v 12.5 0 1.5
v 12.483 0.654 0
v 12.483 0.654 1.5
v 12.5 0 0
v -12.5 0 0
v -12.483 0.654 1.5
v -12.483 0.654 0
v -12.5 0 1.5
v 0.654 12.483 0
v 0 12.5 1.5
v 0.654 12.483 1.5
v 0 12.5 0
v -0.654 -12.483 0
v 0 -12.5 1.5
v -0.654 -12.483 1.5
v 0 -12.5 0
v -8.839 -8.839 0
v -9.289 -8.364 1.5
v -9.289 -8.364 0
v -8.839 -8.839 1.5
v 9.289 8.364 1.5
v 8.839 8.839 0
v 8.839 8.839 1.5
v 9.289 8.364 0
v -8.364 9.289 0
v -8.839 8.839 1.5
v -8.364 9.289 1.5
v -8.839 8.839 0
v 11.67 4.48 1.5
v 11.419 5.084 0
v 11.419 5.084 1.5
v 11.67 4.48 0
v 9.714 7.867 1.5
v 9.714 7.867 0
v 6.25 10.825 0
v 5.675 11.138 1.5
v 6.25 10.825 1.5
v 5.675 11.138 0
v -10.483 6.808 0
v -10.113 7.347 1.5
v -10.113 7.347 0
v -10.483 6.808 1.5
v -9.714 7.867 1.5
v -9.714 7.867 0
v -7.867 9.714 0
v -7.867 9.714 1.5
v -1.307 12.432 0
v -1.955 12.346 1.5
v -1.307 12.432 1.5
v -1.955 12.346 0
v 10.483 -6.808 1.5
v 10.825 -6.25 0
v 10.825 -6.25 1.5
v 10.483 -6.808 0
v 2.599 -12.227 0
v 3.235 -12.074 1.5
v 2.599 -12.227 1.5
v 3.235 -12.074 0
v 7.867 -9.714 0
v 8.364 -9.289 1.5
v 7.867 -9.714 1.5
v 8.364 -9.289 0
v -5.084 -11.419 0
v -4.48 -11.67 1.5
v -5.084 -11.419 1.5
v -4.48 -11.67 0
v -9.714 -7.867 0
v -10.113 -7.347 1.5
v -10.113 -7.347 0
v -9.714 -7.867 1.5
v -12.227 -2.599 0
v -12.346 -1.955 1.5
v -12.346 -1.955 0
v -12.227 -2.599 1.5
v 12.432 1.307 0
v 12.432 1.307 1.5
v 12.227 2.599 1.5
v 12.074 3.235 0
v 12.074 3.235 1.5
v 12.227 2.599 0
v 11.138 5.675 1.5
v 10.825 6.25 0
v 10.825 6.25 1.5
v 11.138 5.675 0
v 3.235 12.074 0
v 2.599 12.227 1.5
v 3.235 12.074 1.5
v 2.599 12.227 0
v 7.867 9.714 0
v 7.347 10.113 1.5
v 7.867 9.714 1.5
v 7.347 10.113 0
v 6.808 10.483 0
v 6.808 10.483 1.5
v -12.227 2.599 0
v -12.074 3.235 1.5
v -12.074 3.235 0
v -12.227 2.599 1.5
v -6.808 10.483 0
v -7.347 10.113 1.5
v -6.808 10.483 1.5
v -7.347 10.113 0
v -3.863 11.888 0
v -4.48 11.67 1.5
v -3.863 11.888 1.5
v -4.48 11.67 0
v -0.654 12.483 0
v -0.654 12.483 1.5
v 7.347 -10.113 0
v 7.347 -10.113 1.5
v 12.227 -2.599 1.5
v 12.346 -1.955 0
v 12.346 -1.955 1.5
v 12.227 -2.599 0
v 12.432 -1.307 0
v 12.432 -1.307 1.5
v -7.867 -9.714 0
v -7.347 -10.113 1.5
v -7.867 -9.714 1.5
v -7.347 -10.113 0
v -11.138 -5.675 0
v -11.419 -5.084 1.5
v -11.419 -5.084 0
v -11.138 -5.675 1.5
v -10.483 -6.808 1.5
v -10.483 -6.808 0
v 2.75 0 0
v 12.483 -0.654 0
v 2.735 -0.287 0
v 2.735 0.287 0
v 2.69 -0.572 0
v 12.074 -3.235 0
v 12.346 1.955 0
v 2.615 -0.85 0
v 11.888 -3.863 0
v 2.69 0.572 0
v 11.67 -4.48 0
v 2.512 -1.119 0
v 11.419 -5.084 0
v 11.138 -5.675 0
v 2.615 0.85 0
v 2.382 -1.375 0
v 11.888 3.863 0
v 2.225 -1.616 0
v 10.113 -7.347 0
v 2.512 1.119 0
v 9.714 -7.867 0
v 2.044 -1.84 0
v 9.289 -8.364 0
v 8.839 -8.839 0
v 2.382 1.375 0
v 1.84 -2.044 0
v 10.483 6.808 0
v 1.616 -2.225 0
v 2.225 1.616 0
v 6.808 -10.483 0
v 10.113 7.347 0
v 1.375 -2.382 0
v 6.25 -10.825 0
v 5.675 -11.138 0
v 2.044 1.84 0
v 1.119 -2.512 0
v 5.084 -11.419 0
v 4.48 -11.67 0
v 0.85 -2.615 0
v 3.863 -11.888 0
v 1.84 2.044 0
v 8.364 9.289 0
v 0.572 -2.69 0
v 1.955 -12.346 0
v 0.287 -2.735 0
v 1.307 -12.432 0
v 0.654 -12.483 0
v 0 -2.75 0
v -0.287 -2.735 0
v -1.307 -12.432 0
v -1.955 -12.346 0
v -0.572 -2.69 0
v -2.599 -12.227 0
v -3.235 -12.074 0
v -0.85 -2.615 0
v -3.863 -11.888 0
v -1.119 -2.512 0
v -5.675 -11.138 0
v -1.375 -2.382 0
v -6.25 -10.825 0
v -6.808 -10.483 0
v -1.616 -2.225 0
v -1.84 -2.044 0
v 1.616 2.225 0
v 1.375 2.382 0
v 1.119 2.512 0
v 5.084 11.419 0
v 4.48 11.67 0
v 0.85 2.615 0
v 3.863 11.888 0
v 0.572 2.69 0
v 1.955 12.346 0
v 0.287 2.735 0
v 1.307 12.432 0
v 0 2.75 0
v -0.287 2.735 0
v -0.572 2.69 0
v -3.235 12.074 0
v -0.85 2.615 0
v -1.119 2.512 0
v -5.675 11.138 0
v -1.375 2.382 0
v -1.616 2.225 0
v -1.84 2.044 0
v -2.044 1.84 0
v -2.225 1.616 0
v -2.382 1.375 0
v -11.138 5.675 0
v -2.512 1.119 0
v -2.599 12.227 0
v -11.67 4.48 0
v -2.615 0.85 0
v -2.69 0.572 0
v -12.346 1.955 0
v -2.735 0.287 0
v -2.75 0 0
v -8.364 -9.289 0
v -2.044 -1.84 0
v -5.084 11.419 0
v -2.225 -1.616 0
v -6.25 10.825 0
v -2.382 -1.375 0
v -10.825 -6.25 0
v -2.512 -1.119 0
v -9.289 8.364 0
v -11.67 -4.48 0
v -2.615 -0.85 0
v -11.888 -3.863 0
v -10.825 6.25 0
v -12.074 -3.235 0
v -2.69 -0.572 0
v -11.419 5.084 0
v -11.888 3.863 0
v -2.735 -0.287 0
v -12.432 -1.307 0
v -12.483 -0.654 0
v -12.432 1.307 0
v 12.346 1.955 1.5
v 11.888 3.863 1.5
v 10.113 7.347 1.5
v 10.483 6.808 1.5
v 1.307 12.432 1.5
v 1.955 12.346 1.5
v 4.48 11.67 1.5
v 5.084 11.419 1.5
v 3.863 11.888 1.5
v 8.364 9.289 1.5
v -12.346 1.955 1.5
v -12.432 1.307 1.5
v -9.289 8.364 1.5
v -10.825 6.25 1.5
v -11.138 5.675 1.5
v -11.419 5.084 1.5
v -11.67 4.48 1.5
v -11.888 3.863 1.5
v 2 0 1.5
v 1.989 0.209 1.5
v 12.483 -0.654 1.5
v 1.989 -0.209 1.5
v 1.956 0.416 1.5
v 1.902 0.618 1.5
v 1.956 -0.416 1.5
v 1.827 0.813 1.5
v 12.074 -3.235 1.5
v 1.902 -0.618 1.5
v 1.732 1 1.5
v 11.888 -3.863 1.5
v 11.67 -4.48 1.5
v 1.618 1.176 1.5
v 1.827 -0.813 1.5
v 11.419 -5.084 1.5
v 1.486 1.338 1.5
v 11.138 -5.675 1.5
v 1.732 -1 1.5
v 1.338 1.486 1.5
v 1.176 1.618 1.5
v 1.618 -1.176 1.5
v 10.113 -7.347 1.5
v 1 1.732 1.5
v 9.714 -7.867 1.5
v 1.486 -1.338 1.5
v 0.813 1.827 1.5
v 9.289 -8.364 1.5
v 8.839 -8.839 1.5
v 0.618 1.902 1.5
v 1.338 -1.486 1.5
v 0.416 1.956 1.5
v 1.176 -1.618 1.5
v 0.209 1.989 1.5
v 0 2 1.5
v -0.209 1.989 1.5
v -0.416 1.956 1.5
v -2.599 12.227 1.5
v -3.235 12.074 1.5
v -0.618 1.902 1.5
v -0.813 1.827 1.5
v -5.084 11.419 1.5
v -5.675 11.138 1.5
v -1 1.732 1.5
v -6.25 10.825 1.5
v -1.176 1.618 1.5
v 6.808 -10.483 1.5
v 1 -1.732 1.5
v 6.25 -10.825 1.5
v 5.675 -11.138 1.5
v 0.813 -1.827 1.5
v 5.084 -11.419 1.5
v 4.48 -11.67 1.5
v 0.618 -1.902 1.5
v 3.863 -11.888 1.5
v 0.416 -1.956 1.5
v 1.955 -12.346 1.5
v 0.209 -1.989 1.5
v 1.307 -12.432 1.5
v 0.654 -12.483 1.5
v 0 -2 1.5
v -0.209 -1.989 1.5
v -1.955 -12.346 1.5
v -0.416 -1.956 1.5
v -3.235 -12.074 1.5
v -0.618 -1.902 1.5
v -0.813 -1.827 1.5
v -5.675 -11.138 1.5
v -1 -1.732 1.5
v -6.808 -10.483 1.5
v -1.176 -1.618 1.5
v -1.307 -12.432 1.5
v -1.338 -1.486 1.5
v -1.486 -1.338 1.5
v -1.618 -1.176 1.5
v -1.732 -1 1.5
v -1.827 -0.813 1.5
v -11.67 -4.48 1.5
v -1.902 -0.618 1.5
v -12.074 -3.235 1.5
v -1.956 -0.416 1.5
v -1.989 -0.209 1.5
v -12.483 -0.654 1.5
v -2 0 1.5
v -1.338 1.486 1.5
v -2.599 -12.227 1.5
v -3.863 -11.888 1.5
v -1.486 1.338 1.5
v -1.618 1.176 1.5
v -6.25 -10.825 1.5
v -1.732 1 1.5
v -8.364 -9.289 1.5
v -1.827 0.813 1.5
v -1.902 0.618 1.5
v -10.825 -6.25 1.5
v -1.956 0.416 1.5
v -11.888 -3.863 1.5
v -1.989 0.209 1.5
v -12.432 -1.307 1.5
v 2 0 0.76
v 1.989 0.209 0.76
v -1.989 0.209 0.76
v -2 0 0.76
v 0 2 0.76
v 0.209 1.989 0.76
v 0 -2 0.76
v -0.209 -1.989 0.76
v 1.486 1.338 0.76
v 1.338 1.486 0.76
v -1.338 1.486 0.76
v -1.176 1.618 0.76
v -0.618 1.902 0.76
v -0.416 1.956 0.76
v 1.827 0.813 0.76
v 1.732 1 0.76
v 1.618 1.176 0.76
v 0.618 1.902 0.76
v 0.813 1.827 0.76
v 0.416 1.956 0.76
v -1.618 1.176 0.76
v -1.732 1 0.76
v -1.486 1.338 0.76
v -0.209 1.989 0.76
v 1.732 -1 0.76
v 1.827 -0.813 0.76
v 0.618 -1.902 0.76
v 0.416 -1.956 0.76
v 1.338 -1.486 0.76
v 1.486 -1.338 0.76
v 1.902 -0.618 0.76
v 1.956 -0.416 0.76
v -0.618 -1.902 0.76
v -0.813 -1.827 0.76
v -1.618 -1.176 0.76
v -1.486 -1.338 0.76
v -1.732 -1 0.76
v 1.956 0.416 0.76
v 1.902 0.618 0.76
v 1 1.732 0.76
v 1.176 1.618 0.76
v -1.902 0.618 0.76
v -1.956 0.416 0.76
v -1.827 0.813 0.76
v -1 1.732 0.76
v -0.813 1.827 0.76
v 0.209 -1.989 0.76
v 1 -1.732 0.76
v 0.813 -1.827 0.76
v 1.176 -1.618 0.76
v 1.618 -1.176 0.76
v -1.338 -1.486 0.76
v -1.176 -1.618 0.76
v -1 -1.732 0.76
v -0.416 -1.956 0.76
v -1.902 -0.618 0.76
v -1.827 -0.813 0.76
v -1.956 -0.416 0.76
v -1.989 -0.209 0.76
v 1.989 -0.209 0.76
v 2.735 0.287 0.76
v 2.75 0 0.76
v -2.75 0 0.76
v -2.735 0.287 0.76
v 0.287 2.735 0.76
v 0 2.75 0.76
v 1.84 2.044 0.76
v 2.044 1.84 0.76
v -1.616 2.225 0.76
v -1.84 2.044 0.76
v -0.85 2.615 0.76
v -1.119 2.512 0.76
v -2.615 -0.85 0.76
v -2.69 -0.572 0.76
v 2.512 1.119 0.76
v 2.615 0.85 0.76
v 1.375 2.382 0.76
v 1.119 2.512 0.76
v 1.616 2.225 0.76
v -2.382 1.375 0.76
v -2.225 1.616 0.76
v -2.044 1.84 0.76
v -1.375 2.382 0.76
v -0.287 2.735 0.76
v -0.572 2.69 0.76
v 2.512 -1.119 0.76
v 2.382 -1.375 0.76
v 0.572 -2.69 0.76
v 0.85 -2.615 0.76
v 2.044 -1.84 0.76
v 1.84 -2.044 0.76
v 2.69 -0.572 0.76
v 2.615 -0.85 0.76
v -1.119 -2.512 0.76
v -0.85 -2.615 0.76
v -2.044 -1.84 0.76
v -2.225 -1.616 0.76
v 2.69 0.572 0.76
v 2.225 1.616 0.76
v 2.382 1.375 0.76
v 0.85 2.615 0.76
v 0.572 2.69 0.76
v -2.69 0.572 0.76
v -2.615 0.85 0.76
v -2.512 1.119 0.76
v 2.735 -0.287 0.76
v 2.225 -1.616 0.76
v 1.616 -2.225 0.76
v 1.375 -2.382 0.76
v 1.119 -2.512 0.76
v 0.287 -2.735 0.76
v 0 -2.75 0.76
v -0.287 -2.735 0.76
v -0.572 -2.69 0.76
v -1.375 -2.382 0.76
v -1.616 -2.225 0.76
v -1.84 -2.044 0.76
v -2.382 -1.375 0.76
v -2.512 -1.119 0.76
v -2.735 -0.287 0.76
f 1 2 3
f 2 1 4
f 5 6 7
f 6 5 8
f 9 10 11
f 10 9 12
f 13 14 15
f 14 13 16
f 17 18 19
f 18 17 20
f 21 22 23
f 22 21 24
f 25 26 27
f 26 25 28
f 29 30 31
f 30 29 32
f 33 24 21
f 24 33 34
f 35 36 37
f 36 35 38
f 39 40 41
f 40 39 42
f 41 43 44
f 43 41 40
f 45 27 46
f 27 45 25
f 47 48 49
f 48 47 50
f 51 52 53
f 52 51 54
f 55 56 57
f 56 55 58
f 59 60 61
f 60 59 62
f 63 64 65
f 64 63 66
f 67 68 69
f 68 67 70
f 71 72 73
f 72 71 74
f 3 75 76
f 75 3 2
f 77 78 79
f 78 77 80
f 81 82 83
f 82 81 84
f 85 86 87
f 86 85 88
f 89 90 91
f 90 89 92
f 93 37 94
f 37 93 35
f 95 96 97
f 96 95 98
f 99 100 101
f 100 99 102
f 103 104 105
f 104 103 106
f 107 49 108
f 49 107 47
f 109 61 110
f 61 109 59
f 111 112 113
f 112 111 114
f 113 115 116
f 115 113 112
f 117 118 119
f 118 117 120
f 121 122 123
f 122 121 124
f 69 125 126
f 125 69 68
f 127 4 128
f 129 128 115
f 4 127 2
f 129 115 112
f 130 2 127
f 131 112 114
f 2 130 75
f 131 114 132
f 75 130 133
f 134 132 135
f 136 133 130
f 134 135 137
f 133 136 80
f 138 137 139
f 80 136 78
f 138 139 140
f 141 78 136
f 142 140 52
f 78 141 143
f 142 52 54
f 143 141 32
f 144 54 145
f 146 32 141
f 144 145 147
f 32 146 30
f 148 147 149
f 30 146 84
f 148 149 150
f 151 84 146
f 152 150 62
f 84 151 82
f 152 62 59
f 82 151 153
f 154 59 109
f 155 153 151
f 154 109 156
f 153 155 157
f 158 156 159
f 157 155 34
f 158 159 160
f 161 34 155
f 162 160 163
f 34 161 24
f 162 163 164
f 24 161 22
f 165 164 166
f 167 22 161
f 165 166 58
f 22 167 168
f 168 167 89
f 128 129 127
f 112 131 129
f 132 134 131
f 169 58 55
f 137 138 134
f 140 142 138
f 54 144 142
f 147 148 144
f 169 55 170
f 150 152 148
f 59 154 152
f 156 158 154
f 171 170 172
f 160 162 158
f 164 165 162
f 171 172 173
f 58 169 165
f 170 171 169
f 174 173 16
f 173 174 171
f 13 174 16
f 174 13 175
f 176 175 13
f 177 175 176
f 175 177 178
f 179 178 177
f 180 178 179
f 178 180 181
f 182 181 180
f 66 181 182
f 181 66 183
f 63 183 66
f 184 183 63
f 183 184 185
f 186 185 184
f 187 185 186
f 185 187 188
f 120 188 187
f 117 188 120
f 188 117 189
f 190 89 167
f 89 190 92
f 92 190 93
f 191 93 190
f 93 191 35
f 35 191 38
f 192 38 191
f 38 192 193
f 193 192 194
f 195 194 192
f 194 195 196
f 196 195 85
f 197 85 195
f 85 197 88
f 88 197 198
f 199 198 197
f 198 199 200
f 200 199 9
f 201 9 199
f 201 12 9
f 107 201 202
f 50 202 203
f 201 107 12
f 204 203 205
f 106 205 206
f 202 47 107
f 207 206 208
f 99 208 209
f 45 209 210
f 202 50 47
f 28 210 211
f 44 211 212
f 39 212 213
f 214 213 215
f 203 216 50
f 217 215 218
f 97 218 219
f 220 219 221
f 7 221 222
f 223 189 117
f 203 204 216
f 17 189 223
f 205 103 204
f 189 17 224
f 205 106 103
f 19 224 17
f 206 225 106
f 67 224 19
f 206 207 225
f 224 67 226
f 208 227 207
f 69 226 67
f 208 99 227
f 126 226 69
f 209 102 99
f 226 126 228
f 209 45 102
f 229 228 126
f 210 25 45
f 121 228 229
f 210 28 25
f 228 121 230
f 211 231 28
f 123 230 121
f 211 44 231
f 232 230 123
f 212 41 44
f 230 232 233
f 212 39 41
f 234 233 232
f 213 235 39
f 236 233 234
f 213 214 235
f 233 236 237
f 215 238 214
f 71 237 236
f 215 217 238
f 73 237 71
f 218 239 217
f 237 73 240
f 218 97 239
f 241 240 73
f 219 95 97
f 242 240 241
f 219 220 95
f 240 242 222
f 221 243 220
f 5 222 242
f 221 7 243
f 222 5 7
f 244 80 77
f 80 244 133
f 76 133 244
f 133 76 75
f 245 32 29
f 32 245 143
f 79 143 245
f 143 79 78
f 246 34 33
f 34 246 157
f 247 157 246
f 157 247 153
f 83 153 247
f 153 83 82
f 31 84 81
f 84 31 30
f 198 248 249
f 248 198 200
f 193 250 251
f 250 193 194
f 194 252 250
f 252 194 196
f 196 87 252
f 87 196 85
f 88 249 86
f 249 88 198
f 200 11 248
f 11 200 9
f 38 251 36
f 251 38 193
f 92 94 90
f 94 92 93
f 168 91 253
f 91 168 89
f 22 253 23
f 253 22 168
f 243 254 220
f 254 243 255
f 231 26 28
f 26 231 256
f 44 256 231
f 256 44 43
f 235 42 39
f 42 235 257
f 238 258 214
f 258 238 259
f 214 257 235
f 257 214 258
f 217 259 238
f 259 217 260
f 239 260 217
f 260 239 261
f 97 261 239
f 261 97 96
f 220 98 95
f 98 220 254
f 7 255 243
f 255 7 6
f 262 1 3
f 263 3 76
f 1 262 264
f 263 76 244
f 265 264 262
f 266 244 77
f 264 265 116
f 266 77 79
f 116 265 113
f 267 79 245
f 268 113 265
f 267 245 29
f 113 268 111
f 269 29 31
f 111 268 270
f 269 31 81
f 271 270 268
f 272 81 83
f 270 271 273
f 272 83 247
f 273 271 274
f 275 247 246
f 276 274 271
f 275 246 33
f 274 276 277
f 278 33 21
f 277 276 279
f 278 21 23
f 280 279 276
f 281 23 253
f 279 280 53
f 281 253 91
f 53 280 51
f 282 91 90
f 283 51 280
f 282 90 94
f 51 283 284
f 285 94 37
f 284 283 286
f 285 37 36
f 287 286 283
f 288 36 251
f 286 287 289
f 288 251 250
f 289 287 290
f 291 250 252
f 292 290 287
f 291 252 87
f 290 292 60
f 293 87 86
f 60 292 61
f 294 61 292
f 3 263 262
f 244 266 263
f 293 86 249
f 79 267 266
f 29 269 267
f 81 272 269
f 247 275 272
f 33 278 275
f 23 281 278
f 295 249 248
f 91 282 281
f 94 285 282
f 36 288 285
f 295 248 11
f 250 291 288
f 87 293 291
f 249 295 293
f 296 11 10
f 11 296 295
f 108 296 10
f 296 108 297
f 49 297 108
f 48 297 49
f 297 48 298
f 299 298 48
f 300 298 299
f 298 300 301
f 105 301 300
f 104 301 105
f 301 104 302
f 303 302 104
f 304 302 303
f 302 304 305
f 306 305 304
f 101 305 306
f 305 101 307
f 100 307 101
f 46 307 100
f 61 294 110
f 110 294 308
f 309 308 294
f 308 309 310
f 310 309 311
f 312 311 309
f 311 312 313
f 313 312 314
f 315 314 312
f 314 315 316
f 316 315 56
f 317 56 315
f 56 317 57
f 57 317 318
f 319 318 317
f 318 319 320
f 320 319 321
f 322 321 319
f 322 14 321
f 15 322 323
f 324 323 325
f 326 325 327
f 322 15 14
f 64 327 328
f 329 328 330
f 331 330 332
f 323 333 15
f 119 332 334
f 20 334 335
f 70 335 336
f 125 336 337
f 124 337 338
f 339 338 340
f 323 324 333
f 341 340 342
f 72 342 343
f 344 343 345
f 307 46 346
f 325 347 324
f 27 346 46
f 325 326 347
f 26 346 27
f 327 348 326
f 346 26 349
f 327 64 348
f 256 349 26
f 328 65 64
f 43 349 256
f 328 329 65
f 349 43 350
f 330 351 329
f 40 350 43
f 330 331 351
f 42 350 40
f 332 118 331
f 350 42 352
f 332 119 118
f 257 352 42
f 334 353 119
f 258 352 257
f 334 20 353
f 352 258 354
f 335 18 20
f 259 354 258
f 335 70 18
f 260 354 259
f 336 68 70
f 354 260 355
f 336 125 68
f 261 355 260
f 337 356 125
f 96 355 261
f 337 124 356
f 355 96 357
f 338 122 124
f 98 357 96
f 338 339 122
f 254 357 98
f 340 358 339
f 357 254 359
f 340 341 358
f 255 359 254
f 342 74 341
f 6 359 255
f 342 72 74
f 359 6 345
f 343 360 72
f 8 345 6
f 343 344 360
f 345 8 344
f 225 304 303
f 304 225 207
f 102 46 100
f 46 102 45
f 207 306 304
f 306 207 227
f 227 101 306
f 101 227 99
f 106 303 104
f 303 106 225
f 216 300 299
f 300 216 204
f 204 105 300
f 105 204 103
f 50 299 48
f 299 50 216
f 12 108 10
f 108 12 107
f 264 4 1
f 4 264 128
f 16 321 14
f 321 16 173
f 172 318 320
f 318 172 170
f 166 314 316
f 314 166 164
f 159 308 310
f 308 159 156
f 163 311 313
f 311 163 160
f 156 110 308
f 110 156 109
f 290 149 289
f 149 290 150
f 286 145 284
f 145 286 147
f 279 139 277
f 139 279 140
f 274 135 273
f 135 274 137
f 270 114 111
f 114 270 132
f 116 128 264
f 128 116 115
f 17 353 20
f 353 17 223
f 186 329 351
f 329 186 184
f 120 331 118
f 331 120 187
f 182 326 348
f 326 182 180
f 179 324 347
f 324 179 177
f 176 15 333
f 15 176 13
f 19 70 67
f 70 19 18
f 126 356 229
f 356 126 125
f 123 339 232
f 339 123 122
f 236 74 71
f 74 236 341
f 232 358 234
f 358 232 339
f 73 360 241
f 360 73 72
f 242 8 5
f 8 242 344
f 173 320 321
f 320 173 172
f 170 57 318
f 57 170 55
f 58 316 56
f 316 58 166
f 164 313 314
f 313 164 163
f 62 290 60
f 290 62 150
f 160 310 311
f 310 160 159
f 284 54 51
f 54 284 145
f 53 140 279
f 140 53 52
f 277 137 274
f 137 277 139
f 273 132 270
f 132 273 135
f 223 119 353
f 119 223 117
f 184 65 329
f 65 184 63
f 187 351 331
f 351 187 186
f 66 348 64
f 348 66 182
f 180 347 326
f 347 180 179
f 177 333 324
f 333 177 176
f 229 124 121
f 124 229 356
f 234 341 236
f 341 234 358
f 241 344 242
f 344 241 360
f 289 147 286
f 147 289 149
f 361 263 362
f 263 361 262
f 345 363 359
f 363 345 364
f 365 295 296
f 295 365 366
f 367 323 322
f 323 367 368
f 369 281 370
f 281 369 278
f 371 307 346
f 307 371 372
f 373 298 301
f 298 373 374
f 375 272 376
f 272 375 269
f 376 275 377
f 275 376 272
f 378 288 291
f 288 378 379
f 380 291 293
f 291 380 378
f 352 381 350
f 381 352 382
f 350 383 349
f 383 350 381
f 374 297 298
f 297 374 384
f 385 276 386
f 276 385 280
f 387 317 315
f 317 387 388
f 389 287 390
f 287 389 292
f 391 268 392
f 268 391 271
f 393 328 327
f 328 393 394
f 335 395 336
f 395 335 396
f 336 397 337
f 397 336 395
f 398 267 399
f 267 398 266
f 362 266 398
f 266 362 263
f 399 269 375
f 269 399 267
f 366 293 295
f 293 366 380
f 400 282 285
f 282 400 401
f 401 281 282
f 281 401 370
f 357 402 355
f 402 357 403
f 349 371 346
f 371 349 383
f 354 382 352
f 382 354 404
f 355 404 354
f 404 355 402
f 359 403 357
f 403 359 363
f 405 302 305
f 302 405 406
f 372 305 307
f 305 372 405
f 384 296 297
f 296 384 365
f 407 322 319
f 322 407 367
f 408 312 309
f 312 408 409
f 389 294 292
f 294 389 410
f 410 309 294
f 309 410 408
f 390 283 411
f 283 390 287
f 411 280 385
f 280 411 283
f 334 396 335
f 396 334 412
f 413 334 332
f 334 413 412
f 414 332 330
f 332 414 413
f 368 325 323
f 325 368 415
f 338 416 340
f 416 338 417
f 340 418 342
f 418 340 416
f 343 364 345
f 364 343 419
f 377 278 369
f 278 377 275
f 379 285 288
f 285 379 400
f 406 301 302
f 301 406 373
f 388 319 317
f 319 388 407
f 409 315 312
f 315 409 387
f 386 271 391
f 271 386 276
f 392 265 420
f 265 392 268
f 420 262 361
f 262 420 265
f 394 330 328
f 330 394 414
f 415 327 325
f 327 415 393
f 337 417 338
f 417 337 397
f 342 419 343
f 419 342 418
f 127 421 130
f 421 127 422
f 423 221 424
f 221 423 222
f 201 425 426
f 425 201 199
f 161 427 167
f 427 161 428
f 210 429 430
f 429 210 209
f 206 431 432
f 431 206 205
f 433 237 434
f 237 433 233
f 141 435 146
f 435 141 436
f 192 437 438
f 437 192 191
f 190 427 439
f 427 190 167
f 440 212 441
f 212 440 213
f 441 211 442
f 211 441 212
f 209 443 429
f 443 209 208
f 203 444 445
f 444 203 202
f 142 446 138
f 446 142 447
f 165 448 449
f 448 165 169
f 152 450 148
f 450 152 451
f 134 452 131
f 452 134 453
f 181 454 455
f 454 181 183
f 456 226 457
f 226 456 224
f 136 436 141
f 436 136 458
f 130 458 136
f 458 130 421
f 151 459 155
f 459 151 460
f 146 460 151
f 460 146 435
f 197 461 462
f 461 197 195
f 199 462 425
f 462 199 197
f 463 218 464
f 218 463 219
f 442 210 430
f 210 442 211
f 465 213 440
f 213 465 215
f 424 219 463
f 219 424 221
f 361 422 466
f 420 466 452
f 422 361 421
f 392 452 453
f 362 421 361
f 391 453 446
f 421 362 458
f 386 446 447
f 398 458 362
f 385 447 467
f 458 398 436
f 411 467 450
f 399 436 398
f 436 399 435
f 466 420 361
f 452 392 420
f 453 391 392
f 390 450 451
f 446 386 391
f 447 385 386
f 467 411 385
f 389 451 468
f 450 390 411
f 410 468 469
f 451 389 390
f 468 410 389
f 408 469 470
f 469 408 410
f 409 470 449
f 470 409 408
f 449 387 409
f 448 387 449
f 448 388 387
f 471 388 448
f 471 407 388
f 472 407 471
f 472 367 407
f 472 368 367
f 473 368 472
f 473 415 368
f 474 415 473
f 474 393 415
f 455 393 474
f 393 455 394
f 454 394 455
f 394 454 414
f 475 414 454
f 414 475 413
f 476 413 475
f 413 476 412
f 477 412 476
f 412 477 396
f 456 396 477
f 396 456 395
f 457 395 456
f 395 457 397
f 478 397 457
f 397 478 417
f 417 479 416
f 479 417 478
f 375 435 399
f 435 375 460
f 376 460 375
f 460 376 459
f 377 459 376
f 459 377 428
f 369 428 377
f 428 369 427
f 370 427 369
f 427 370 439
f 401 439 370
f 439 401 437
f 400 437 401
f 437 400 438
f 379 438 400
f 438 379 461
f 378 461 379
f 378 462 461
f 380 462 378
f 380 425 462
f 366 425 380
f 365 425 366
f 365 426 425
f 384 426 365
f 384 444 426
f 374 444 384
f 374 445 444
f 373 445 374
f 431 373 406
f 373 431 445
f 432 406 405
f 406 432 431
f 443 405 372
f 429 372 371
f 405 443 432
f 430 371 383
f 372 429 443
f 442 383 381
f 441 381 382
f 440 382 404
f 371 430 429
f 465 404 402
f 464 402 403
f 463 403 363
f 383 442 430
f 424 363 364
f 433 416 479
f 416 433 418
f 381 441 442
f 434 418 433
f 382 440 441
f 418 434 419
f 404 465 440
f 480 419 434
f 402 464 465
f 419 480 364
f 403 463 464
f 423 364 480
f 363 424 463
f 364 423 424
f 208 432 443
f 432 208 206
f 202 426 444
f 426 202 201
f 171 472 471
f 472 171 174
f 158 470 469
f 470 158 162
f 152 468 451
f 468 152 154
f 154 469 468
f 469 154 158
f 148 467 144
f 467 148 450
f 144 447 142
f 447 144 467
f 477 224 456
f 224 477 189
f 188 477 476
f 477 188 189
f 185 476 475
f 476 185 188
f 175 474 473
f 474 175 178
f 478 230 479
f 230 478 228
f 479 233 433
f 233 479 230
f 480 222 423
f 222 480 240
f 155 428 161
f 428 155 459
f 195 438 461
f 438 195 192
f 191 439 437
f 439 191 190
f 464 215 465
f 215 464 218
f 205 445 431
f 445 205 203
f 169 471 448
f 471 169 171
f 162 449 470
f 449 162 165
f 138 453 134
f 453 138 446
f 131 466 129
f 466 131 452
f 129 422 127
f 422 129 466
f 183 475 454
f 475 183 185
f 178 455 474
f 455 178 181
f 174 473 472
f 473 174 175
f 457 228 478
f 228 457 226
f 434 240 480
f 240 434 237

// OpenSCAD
    // ============================================================
//  Cylinder with Digits 0-9 Engraved on the Border
//  Diameter: 25 mm  |  Height: 3 mm  |  Digits rotated 90°
//  Central hole: 4 mm diameter
// ============================================================

// ── Parameters (edit here) ──────────────────────────────────
diameter    = 25;     // outer diameter [mm]
bottom_height = 1.5;  // total cylinder height [mm]
hole_diam   = 4;      // central hole diameter [mm]
snap_size   = 1.5;    // snap fit size [mm]
snap_height = 0.75;   // snap fit size [mm]
$fn         = 120;    // curve resolution (higher = smoother)
// ── Derived values ──────────────────────────────────────────
radius     = diameter / 2;

// ── Model ───────────────────────────────────────────────────
difference() {

    difference() {

        // Base cylinder
        cylinder(h = bottom_height, d = diameter, center = false);

        // Central through-hole
        translate([0, 0, -0.01])
            cylinder(h = bottom_height + 0.02, d = hole_diam, center = false, $fn = 60);
    }

    // Snap through-hole (hexagonal)
    translate([0, 0, -0.01])
        cylinder(h = snap_height + 0.02, d = hole_diam + snap_size, center = false, $fn = 60);
}
